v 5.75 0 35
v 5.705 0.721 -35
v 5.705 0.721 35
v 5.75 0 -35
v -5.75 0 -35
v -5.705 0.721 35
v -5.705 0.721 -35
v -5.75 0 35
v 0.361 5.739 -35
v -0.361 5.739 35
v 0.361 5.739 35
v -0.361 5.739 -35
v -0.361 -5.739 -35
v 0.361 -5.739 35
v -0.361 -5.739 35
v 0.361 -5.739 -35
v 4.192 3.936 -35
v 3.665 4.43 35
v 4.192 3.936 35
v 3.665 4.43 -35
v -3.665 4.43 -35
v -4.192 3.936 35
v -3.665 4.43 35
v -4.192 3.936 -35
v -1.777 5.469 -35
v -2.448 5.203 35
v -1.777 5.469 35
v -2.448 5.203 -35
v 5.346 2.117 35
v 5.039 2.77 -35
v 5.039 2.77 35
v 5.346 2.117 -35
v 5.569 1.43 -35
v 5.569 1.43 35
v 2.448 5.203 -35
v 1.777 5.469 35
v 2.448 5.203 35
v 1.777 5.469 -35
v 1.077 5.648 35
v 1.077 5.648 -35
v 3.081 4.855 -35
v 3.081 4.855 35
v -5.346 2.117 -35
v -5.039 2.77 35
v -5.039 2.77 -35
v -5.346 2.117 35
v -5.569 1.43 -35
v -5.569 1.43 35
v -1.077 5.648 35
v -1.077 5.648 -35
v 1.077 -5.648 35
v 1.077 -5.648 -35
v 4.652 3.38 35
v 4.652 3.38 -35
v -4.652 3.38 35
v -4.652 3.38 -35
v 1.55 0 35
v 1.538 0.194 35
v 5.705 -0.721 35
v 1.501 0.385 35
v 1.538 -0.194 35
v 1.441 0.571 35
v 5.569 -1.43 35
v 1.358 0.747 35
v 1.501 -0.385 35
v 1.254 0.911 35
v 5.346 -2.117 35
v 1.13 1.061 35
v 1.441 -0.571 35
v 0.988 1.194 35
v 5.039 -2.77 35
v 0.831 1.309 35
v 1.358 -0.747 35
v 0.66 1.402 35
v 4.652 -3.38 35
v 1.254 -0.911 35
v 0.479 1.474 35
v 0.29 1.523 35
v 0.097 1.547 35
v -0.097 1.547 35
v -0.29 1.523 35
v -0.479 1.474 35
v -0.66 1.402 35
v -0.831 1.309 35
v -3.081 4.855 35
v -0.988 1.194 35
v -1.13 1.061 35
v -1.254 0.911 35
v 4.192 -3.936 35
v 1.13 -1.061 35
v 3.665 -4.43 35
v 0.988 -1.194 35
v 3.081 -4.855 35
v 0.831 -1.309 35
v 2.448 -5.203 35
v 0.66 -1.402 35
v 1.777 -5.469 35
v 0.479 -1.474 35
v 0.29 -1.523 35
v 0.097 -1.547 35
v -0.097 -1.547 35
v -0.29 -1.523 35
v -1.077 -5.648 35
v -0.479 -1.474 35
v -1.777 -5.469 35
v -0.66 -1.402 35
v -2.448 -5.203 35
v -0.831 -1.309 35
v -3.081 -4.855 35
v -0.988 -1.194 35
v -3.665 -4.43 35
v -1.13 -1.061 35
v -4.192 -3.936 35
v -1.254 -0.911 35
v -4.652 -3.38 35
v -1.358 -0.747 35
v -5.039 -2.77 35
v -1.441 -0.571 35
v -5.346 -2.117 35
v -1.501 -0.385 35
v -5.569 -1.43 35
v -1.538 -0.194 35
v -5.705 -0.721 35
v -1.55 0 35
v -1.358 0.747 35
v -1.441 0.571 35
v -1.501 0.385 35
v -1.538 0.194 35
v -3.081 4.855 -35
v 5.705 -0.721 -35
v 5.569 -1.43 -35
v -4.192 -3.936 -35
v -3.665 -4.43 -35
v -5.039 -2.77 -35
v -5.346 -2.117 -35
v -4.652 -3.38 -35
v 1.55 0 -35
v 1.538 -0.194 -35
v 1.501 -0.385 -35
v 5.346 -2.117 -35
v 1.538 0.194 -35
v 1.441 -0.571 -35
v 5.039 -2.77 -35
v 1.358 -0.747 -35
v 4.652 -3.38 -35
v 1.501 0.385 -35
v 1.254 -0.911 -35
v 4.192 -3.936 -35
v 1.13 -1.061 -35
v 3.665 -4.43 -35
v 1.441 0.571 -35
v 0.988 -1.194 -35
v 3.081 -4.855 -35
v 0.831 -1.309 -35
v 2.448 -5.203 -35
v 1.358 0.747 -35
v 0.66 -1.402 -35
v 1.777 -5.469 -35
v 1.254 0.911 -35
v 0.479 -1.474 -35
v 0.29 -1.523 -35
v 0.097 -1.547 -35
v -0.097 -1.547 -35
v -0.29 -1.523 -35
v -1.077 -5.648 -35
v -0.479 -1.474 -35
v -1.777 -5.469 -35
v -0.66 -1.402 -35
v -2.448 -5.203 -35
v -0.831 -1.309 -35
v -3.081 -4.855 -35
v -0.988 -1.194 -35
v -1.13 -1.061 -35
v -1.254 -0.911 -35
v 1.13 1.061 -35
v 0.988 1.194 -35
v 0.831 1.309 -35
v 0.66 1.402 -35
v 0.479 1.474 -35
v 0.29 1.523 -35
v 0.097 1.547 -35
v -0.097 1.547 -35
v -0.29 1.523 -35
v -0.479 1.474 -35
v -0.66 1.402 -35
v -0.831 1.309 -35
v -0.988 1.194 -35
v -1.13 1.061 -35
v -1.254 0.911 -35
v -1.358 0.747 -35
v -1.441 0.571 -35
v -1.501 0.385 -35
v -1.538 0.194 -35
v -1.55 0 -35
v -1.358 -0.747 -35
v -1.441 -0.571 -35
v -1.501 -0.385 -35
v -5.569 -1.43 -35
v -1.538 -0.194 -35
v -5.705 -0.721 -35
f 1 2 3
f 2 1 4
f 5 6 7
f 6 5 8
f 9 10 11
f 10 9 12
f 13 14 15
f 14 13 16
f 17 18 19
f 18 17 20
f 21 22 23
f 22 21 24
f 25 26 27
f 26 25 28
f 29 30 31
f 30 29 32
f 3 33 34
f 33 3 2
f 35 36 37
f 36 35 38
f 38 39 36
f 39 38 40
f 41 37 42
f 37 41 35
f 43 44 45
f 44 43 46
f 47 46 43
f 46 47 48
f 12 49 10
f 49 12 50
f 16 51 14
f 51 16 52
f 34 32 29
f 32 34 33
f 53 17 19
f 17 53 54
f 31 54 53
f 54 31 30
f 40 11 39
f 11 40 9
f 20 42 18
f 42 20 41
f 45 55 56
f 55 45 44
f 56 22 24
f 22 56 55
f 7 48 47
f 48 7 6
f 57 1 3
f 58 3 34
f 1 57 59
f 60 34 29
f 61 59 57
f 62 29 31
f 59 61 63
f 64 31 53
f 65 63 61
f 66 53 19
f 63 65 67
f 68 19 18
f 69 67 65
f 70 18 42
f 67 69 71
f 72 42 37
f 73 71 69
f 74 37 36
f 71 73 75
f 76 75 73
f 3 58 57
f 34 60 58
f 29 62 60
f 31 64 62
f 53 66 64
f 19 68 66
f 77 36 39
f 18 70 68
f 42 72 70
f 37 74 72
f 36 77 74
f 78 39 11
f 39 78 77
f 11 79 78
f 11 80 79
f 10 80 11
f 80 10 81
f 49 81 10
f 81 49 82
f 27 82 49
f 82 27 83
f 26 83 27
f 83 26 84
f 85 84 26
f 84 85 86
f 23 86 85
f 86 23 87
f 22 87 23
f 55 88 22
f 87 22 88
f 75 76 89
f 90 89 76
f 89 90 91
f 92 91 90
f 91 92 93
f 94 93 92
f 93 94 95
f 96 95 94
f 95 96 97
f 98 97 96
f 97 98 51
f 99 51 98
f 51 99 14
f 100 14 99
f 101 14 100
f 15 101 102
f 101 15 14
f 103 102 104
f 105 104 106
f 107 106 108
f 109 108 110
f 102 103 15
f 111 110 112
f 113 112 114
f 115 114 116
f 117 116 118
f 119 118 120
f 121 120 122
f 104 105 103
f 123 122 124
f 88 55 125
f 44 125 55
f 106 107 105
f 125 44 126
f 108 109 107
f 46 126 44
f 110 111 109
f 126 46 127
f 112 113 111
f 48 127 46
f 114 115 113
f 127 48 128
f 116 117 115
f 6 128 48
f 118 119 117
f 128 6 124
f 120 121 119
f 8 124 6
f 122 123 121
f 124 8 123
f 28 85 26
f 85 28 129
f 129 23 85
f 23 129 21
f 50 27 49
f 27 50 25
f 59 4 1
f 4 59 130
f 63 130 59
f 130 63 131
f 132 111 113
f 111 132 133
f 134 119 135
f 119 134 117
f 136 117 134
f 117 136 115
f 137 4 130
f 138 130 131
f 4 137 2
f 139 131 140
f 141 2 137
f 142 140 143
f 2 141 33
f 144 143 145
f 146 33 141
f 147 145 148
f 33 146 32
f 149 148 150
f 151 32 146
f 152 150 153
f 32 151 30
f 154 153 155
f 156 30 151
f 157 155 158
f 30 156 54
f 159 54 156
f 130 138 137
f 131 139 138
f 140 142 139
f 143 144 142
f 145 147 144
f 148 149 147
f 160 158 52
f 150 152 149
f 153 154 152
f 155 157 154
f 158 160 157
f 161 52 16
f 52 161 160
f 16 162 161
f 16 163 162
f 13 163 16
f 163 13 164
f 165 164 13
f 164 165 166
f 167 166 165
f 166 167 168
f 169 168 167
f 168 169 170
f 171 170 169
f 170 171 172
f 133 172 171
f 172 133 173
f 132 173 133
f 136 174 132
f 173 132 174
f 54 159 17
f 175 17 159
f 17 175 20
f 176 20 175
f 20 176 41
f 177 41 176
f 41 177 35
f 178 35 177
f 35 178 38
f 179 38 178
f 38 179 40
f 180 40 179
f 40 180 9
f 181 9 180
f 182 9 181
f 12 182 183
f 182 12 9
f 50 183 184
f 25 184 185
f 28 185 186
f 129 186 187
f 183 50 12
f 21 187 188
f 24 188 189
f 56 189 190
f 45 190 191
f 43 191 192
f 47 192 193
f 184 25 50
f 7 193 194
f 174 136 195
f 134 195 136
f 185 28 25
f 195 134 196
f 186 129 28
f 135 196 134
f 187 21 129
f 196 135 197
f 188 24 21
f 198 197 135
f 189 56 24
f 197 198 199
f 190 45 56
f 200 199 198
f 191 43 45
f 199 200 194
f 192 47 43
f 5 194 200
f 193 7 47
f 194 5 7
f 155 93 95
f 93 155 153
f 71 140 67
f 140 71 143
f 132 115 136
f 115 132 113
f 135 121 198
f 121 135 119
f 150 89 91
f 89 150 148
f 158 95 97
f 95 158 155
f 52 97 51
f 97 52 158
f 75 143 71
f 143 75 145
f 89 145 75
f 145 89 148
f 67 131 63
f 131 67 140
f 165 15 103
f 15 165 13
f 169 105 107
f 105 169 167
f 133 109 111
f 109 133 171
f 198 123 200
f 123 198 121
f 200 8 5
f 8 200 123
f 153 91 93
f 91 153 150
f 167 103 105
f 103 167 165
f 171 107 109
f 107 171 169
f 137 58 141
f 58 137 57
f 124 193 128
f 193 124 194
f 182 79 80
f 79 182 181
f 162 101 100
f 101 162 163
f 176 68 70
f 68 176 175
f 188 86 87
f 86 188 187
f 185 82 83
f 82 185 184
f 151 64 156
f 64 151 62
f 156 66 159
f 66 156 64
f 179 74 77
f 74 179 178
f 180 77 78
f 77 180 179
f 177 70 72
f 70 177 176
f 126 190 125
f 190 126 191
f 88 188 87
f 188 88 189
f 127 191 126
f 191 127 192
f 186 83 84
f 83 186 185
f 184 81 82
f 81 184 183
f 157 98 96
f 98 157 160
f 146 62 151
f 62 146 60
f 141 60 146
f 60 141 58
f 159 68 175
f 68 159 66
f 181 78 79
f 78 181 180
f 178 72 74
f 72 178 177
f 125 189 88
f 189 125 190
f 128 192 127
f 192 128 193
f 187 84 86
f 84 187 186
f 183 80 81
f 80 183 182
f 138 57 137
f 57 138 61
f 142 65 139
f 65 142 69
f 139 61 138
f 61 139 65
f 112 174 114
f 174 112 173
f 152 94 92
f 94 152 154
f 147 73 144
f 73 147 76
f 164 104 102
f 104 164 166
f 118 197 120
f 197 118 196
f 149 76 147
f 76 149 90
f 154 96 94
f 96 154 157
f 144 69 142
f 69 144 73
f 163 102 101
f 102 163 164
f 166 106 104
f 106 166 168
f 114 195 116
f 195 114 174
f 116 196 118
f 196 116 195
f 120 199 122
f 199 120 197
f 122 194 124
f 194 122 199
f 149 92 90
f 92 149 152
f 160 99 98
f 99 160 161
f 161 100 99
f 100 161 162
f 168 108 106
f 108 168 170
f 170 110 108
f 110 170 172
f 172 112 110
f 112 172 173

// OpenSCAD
$fn = 50;


difference() {
	union() {
		translate(v = [0, 0, -35.0000000000]) {
			cylinder(h = 70, r = 5.7500000000);
		}
	}
	union() {
		translate(v = [0, 0, -100.0000000000]) {
			cylinder(h = 200, r = 1.5500000000);
		}
	}
}
